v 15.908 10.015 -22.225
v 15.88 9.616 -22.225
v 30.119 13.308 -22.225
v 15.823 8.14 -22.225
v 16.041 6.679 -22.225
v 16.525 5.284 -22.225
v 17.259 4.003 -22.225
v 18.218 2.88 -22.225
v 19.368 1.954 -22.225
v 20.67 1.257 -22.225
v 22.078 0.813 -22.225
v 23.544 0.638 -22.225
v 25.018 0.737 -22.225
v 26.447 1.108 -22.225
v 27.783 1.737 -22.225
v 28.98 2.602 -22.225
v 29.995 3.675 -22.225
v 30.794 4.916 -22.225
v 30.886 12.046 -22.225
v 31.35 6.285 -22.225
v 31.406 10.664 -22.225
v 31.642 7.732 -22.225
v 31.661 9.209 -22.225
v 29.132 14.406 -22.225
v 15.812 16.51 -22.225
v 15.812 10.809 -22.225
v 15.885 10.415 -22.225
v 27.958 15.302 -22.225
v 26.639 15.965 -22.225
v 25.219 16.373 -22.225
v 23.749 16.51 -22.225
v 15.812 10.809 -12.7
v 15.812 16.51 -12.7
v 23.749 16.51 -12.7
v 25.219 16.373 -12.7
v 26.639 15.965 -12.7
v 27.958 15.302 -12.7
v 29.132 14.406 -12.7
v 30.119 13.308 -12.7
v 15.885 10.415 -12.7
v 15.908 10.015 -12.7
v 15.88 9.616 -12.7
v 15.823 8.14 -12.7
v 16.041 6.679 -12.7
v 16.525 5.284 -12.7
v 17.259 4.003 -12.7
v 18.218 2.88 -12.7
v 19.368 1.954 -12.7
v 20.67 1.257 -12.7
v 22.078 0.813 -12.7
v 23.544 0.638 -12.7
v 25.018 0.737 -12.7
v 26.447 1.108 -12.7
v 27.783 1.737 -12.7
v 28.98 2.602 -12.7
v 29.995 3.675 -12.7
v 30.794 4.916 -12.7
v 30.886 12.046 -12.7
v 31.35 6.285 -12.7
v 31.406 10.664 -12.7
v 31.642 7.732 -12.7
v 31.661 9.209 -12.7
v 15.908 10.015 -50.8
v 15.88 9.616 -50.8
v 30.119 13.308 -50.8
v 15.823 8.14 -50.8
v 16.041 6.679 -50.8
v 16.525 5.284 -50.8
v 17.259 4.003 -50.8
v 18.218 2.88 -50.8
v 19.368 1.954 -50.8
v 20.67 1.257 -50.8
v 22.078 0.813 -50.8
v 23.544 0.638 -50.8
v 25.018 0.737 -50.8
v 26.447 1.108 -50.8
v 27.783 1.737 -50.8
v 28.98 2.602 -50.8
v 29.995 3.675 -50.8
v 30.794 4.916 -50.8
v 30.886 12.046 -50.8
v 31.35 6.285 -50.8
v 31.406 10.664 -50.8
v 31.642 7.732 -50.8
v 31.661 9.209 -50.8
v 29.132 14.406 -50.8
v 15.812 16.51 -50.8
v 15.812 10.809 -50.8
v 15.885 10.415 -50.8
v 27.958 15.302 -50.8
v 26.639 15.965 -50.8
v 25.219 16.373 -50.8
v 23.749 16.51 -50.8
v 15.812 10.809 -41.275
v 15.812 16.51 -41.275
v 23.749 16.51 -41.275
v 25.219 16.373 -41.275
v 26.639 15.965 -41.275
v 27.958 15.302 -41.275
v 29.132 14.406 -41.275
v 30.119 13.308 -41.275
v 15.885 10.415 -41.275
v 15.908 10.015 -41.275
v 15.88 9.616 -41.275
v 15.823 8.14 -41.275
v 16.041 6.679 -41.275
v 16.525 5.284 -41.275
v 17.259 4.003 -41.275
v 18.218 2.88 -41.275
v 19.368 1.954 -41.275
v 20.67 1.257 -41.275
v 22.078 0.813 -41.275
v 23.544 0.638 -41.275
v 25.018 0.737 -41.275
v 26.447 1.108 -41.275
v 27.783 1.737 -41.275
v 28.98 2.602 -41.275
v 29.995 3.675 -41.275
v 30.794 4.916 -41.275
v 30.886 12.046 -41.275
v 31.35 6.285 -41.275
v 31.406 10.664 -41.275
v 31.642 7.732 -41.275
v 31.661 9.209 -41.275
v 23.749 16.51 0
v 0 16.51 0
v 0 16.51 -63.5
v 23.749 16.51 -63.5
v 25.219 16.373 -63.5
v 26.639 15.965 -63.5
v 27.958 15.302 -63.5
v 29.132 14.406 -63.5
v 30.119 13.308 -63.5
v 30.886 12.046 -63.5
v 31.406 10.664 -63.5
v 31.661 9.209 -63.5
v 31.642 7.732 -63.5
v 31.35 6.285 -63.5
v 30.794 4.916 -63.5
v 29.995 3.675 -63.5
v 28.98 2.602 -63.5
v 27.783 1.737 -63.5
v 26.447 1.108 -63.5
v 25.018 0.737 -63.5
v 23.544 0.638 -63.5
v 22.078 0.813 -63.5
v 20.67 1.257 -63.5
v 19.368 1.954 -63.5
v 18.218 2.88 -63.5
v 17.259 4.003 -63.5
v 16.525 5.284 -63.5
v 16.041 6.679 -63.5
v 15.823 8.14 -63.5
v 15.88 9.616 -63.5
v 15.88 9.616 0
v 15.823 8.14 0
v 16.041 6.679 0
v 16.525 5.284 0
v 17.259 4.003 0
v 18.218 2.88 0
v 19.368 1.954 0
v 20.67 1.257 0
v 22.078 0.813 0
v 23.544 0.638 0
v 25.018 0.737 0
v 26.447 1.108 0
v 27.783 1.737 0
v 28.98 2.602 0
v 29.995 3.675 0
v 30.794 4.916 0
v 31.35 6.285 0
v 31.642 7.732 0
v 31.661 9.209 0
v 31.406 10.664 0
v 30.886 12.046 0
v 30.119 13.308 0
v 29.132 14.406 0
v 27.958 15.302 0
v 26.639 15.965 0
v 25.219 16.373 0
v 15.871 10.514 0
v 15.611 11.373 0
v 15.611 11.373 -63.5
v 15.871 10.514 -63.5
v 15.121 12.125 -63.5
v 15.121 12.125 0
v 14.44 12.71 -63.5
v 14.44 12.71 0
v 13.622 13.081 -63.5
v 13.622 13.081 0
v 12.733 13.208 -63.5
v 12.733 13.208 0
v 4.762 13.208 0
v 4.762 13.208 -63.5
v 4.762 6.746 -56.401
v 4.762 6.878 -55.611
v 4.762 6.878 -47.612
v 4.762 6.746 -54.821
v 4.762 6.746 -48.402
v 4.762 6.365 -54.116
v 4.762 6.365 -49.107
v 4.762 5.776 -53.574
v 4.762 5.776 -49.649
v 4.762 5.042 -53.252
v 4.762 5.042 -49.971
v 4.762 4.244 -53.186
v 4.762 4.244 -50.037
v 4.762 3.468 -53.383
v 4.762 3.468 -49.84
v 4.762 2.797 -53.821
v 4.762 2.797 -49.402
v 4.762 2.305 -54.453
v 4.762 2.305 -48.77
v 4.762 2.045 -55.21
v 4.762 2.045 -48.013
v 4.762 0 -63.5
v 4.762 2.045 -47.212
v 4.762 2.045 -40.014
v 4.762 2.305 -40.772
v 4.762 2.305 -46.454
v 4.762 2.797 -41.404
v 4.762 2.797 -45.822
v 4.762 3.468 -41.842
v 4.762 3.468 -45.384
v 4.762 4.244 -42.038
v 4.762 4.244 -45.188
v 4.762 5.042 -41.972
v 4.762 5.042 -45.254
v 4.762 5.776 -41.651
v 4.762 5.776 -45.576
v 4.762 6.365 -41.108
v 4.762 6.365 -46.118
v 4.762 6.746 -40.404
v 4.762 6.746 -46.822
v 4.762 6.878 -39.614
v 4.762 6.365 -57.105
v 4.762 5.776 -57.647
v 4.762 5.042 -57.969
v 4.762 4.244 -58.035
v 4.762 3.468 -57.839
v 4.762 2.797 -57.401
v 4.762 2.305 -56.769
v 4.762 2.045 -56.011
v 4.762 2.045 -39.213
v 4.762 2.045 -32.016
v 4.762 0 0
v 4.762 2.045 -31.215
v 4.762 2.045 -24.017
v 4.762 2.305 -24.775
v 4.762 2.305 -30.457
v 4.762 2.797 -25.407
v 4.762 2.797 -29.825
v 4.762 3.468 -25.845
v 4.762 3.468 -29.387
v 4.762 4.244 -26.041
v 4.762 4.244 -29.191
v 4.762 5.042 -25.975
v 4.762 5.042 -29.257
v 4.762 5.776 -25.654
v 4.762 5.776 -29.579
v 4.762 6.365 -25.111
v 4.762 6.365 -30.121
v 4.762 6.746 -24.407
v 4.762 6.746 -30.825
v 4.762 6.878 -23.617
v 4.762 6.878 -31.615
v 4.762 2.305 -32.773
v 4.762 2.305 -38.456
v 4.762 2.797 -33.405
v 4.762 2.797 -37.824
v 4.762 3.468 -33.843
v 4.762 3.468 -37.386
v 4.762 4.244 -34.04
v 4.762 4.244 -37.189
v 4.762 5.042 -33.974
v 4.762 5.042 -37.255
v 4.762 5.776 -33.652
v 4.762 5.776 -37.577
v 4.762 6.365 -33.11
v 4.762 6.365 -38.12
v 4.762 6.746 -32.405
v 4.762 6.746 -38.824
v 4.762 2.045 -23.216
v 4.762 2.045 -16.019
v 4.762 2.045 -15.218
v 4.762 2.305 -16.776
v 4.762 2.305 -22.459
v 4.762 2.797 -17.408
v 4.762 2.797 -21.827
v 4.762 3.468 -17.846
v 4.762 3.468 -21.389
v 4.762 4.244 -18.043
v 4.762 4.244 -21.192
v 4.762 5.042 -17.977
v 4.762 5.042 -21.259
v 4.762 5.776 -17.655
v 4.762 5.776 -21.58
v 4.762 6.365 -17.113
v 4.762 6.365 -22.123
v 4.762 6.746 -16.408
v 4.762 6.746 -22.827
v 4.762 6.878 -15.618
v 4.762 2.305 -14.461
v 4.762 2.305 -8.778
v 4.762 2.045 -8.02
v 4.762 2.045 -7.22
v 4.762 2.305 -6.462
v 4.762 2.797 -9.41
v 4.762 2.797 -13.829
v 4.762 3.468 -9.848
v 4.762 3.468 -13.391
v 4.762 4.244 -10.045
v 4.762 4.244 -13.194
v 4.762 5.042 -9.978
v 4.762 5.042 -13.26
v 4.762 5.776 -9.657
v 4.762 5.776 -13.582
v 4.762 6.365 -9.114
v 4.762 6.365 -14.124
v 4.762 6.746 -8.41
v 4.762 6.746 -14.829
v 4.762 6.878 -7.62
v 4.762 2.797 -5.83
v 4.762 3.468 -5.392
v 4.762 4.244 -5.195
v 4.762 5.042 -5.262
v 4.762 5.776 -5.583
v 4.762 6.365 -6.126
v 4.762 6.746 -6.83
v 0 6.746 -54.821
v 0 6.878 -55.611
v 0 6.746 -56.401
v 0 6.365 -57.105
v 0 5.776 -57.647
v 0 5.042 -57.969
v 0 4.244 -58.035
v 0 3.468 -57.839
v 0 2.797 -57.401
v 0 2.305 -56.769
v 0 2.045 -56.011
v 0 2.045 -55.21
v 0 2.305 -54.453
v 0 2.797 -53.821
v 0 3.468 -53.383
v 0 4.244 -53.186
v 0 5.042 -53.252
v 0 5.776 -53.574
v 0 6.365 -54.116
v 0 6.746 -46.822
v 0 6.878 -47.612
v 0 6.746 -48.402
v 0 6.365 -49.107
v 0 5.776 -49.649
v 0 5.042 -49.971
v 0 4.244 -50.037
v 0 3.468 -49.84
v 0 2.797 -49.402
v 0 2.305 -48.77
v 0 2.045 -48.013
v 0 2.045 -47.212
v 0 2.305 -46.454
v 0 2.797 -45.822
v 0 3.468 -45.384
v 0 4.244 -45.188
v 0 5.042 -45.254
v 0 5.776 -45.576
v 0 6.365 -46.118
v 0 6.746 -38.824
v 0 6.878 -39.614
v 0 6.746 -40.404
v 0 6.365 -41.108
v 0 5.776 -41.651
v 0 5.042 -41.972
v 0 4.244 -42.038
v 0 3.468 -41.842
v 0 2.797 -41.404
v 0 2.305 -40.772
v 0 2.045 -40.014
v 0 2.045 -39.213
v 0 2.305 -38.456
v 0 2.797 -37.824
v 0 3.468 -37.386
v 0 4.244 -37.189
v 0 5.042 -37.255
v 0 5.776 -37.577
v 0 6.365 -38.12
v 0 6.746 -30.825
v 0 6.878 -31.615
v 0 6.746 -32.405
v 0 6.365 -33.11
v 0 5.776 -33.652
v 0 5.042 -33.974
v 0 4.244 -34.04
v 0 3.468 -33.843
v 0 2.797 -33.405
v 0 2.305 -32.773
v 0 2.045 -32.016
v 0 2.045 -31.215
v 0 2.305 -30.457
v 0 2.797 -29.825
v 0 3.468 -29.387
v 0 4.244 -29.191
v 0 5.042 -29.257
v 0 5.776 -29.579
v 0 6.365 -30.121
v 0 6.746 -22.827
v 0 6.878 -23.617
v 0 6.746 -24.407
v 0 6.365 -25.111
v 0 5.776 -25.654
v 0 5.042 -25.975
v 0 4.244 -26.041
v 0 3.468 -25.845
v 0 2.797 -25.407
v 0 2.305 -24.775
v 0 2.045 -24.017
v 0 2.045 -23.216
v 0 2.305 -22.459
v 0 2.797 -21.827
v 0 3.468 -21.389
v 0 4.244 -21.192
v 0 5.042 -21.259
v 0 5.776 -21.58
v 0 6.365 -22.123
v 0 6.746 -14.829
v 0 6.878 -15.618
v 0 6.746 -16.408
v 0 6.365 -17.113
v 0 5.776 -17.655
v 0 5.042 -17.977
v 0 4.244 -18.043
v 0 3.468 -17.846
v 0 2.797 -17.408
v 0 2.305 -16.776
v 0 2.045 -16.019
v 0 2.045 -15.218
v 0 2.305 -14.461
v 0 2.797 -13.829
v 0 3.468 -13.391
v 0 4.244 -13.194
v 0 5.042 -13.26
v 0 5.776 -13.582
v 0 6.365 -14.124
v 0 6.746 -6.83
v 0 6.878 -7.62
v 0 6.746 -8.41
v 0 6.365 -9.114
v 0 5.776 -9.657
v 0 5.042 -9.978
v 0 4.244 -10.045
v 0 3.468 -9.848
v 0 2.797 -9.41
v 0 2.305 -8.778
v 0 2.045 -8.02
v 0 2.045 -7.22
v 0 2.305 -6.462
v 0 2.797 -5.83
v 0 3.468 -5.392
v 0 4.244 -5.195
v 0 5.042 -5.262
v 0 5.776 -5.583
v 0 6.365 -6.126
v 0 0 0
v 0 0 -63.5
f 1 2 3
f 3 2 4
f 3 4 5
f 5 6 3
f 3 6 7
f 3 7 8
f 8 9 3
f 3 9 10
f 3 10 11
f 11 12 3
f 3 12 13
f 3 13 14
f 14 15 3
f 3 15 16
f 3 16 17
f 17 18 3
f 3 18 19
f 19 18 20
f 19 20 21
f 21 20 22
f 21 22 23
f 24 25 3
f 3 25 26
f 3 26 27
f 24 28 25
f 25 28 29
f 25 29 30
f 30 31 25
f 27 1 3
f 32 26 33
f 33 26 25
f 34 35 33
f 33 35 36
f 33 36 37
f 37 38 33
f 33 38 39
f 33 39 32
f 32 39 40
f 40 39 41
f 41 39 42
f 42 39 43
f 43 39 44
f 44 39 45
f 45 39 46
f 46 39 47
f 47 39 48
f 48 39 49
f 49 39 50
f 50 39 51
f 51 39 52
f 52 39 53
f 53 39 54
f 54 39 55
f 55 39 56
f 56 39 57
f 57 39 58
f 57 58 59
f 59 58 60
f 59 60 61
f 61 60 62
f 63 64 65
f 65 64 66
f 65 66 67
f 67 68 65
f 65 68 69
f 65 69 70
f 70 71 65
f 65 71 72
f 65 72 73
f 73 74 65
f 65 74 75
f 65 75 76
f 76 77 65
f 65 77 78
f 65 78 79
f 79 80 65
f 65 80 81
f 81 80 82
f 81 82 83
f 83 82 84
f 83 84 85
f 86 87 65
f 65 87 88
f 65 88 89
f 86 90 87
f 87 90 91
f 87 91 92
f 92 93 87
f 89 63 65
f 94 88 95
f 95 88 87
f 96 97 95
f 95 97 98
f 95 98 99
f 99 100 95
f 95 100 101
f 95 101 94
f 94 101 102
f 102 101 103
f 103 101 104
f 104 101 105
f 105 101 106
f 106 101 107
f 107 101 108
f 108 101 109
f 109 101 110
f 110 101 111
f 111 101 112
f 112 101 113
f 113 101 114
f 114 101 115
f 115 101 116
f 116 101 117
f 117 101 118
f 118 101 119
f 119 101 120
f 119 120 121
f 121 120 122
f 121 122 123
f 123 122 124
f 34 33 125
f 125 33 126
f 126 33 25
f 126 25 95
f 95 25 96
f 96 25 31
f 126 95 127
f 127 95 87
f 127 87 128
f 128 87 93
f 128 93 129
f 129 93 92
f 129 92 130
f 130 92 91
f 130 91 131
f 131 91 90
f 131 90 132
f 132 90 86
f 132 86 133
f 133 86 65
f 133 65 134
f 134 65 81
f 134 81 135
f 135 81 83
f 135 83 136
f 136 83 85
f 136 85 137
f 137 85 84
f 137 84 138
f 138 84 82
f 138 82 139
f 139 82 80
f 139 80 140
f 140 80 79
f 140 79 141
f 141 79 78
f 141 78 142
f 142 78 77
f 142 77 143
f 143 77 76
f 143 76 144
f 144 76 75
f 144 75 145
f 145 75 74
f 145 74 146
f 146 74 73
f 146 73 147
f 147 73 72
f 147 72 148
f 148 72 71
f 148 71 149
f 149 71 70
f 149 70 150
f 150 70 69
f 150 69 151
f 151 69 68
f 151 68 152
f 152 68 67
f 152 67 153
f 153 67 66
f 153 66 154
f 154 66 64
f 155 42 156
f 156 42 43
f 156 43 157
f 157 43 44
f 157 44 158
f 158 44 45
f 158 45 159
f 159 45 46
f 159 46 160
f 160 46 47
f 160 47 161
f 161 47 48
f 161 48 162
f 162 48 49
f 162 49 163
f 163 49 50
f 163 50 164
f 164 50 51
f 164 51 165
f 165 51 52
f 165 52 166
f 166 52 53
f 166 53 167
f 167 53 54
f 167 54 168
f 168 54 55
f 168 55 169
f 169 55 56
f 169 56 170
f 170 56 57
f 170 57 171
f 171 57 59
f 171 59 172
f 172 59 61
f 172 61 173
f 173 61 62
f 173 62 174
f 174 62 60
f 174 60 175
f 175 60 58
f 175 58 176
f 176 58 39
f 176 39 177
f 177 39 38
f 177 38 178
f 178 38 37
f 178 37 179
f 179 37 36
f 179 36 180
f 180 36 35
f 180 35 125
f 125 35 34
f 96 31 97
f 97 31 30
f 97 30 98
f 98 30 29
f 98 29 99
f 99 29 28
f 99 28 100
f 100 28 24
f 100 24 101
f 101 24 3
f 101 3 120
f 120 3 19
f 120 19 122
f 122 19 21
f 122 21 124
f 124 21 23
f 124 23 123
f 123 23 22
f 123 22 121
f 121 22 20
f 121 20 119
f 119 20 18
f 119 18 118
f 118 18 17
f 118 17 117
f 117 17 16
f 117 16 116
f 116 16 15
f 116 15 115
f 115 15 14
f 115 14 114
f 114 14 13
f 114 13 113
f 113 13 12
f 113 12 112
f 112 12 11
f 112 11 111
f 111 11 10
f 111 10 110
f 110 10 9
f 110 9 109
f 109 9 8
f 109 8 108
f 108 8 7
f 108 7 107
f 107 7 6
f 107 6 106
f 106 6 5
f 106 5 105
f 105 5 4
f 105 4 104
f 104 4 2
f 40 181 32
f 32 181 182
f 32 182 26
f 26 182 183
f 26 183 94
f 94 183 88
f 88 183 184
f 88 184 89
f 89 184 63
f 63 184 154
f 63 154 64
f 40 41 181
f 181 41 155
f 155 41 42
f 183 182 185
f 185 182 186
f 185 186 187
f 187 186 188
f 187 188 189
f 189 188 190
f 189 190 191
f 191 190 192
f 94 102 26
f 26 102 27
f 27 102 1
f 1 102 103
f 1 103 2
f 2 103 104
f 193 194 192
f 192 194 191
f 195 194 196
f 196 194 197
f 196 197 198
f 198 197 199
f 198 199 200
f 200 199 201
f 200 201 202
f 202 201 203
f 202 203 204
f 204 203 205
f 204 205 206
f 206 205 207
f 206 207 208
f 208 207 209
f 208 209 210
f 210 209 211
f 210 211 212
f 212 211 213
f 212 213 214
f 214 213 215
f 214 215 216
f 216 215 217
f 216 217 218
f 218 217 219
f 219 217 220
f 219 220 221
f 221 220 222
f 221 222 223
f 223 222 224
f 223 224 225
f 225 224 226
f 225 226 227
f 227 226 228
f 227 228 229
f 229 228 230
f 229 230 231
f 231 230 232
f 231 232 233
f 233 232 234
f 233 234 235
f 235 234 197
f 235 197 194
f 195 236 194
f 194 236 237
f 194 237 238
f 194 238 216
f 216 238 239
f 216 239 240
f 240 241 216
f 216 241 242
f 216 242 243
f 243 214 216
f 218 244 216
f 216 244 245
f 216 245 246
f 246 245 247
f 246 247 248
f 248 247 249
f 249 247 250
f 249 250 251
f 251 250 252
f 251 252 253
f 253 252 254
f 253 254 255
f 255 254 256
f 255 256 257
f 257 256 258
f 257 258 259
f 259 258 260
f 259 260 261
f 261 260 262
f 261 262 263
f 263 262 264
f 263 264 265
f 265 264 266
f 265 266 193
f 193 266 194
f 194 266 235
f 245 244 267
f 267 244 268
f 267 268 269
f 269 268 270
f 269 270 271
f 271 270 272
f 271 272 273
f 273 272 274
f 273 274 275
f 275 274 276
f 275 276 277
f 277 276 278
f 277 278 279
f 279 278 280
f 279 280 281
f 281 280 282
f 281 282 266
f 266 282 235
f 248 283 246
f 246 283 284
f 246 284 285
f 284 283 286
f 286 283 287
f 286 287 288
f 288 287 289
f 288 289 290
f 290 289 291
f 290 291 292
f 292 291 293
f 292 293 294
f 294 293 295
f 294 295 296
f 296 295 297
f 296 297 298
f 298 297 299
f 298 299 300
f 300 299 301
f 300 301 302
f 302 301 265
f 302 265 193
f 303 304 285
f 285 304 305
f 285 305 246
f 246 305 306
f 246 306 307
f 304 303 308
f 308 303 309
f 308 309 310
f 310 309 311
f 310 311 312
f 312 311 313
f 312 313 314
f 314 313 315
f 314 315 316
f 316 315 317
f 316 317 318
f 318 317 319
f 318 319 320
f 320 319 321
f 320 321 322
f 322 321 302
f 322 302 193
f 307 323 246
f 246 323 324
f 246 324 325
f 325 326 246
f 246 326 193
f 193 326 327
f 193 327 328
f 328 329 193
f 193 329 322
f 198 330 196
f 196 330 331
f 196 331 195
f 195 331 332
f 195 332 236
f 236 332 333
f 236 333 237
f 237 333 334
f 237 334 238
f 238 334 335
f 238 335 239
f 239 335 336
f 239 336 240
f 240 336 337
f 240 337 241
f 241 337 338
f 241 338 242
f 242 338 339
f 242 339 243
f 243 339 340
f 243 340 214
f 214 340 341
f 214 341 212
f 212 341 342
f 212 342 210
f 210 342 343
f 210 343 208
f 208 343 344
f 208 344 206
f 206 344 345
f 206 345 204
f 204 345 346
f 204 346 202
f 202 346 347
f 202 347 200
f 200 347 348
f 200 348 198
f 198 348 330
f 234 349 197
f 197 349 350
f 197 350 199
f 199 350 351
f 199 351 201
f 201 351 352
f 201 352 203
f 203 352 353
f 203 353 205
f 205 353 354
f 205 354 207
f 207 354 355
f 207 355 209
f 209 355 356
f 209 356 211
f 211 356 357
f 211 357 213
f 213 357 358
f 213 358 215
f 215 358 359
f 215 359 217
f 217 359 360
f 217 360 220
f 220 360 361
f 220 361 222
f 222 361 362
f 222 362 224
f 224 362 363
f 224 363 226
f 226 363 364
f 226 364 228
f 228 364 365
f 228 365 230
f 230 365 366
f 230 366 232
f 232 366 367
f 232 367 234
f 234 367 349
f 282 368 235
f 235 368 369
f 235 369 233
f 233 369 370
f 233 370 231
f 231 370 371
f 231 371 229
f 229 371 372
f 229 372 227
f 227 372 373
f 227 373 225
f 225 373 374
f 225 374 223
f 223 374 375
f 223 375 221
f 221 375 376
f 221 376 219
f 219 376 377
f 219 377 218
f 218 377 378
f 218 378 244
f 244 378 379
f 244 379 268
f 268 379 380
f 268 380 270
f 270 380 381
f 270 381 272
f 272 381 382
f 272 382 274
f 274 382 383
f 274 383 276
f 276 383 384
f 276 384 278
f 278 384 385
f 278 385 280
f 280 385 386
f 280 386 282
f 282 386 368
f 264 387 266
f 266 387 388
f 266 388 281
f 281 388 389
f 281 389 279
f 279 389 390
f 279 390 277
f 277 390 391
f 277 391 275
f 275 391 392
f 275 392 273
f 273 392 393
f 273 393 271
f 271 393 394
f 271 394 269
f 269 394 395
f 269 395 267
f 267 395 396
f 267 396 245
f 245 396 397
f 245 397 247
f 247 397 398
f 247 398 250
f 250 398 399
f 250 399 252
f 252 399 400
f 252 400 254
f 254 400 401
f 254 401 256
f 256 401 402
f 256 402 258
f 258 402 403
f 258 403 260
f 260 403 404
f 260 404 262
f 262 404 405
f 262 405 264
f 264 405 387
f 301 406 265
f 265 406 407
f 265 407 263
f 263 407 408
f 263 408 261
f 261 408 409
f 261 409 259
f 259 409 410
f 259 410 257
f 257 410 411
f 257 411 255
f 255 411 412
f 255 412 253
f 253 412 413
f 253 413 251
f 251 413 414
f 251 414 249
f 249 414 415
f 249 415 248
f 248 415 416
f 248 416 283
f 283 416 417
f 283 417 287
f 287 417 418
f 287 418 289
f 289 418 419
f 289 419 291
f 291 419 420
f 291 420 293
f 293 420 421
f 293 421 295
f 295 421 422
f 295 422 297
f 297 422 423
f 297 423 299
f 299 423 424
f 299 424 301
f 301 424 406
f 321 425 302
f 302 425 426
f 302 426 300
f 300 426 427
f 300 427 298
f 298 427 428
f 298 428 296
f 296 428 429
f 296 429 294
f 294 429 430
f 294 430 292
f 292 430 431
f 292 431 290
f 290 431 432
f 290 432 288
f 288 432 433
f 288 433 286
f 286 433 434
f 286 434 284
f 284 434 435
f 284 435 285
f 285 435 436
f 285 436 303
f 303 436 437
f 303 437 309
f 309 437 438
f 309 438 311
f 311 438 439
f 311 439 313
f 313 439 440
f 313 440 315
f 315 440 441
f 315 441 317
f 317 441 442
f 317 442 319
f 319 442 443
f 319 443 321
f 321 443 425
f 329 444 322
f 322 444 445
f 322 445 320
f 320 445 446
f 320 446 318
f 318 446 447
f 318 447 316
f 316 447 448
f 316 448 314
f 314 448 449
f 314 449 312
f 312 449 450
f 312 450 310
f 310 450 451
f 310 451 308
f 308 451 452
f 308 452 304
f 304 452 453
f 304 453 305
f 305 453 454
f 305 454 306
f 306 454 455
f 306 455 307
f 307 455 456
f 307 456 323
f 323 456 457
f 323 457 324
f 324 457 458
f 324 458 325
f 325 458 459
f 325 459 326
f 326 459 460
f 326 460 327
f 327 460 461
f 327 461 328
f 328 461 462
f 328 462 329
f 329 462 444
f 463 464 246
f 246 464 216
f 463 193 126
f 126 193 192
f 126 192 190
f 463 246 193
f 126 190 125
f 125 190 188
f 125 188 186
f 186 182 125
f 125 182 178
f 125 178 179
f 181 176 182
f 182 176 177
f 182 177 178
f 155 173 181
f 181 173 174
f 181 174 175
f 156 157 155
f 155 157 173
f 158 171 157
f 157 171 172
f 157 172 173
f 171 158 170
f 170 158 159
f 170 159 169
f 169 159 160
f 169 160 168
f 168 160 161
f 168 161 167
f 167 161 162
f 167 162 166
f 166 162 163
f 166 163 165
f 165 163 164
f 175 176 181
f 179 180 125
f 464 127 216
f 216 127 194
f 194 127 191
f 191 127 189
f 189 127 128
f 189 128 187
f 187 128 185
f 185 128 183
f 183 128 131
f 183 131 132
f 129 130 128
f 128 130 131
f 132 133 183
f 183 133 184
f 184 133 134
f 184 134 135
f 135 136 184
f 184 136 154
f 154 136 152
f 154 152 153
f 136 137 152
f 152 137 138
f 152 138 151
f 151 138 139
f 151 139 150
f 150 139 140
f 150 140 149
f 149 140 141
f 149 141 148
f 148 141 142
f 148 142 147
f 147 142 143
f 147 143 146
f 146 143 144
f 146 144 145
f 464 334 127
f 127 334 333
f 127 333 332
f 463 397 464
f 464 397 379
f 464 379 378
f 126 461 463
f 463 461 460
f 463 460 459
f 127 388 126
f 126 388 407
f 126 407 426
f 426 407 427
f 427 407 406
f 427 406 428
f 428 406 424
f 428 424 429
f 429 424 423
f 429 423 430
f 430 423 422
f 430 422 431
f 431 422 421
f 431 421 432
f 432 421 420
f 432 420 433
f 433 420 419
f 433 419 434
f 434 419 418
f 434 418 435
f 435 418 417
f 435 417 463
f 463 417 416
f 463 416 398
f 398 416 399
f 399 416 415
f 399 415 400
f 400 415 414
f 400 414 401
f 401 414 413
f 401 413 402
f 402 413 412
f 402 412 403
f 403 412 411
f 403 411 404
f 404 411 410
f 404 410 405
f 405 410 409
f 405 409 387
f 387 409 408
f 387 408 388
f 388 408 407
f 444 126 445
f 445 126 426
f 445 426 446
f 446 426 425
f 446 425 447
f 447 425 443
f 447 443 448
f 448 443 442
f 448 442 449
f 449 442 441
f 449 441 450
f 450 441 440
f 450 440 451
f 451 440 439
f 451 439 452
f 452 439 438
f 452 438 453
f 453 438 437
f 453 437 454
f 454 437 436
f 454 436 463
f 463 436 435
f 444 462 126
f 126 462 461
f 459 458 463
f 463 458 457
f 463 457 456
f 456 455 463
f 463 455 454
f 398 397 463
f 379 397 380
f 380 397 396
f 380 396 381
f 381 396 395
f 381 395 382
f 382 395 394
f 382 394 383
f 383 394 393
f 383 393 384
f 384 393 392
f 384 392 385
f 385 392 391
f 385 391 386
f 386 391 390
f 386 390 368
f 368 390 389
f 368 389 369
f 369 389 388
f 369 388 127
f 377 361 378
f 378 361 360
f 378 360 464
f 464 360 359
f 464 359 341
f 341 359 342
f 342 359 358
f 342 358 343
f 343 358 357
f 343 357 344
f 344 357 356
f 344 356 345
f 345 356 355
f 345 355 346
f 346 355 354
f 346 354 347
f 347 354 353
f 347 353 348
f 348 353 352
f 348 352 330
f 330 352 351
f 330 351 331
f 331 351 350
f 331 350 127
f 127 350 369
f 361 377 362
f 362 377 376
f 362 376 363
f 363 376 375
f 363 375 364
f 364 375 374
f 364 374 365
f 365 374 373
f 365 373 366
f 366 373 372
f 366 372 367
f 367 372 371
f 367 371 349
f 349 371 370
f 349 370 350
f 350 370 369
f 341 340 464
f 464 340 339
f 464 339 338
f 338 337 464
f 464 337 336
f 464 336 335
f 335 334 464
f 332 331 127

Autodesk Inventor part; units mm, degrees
ref_plane "YZ Plane" through (0, 0, 0) normal (1, 0, 0) x (0, 1, 0)
ref_plane "XZ Plane" through (0, 0, 0) normal (0, 1, 0) x (-1, 0, 0)
ref_plane "XY Plane" through (0, 0, 0) normal (0, 0, 1) x (1, 0, 0)
sketch "Sketch1" plane through (0, 0, 0) normal (1, 0, 0) x (0, 1, 0)
  line L0 (0, 0) -> (16.51, 0)
  line L1 (16.51, 0) -> (16.51, -63.5)
  line L2 (16.51, -63.5) -> (0, -63.5)
  line L3 (0, -63.5) -> (0, 0)
  circle A0 centre (4.445, -7.62) radius 2.4329
  circle A1 centre (4.445, -15.6185) radius 2.4329
  circle A2 centre (4.445, -23.6169) radius 2.4329
  circle A3 centre (4.445, -31.6154) radius 2.4329
  circle A4 centre (4.445, -39.6138) radius 2.4329
  circle A5 centre (4.445, -47.6123) radius 2.4329
  circle A6 centre (4.445, -55.6108) radius 2.4329
  dimension "d0" = 63.5
  dimension "d1" = 16.51
  dimension "d6" = 7.9985
  dimension "d11" = 7.62
extrude "Extrusion1" add sketch "Sketch1" along normal blind 4.7625
sketch "Sketch2" plane through (4.7625, 0, 0) normal (1, 0, 0) x (0, 0, -1)
  line L0 (63.5, 16.51) -> (0, 16.51) projected
  line L1 (63.5, 0) -> (63.5, 16.51) projected
  line L2 (0, 16.51) -> (63.5, 16.51)
  line L3 (63.5, 16.51) -> (63.5, 13.208)
  line L4 (63.5, 13.208) -> (0, 13.208)
  line L5 (0, 13.208) -> (0, 16.51)
  point P0 (0, 0)
  dimension "d14" = 3.302
extrude "Extrusion2" add sketch "Sketch2" along normal blind 1.016
sketch "Sketch3" plane through (0, 0, 0) normal (0, 0, 1) x (1, 0, 0)
  line L0 (5.7785, 16.51) -> (5.7785, 13.208) projected
  arc A0 (15.8804, 9.6157) -> (23.749, 16.51) centre (23.749, 8.5725) ccw
  line L1 (0, 16.51) -> (0, 0) projected
  line L2 (5.7785, 16.51) -> (23.749, 16.51)
  line L3 (4.7625, 13.208) -> (5.7785, 13.208) projected
  line L4 (5.7785, 13.208) -> (12.7329, 13.208)
  arc A1 (15.8804, 9.6157) -> (12.7329, 13.208) centre (12.7329, 10.033) ccw
  point P0 (17.3057, 13.208)
  point P1 (9.5258, 13.208)
  dimension "d17" = 23.749
  dimension "d18" = 15.875
  dimension "d19" = 3.175
extrude "Extrusion3" add sketch "Sketch3" against normal blind 63.5
sketch "Sketch4" plane through (0, 16.51, 0) normal (0, 1, 0) x (1, 0, 0)
  line L0 (31.6865, 0) -> (31.6865, 63.5) projected
  line L1 (31.6865, 0) -> (31.6865, 83.2403)
  point P0 (0, 0)
ref_plane "Work Plane1" through (55.5625, 0, 0) normal (1, 0, 0) x (0, 0, -1)
sketch "Sketch6" plane through (0, 16.51, 0) normal (0, 1, 0) x (1, 0, 0)
  line L0 (31.6865, 0) -> (31.6865, 63.5) projected
  line L1 (15.8115, 50.8) -> (31.6865, 50.8)
  line L2 (31.6865, 50.8) -> (31.6865, 41.275)
  line L3 (31.6865, 41.275) -> (15.8115, 41.275)
  line L4 (15.8115, 41.275) -> (15.8115, 50.8)
  line L5 (31.6865, 63.5) -> (15.8115, 63.5) projected
  line L6 (15.8115, 22.225) -> (31.6865, 22.225)
  line L7 (31.6865, 22.225) -> (31.6865, 12.7)
  line L8 (31.6865, 12.7) -> (15.8115, 12.7)
  line L9 (15.8115, 12.7) -> (15.8115, 22.225)
  line L10 (15.8115, 0) -> (31.6865, 0) projected
  point P0 (0, 0)
  point P1 (15.8804, 63.5)
  point P2 (15.8804, 0)
  dimension "d26" = 9.525
  dimension "d27" = 12.7
  dimension "d28" = 9.525
  dimension "d29" = 12.7
  dimension "d32" = 15.875
  dimension "d33" = 15.875
extrude "Extrusion4" cut sketch "Sketch6" against normal through all
properties part number "knuckle plate hinge"
